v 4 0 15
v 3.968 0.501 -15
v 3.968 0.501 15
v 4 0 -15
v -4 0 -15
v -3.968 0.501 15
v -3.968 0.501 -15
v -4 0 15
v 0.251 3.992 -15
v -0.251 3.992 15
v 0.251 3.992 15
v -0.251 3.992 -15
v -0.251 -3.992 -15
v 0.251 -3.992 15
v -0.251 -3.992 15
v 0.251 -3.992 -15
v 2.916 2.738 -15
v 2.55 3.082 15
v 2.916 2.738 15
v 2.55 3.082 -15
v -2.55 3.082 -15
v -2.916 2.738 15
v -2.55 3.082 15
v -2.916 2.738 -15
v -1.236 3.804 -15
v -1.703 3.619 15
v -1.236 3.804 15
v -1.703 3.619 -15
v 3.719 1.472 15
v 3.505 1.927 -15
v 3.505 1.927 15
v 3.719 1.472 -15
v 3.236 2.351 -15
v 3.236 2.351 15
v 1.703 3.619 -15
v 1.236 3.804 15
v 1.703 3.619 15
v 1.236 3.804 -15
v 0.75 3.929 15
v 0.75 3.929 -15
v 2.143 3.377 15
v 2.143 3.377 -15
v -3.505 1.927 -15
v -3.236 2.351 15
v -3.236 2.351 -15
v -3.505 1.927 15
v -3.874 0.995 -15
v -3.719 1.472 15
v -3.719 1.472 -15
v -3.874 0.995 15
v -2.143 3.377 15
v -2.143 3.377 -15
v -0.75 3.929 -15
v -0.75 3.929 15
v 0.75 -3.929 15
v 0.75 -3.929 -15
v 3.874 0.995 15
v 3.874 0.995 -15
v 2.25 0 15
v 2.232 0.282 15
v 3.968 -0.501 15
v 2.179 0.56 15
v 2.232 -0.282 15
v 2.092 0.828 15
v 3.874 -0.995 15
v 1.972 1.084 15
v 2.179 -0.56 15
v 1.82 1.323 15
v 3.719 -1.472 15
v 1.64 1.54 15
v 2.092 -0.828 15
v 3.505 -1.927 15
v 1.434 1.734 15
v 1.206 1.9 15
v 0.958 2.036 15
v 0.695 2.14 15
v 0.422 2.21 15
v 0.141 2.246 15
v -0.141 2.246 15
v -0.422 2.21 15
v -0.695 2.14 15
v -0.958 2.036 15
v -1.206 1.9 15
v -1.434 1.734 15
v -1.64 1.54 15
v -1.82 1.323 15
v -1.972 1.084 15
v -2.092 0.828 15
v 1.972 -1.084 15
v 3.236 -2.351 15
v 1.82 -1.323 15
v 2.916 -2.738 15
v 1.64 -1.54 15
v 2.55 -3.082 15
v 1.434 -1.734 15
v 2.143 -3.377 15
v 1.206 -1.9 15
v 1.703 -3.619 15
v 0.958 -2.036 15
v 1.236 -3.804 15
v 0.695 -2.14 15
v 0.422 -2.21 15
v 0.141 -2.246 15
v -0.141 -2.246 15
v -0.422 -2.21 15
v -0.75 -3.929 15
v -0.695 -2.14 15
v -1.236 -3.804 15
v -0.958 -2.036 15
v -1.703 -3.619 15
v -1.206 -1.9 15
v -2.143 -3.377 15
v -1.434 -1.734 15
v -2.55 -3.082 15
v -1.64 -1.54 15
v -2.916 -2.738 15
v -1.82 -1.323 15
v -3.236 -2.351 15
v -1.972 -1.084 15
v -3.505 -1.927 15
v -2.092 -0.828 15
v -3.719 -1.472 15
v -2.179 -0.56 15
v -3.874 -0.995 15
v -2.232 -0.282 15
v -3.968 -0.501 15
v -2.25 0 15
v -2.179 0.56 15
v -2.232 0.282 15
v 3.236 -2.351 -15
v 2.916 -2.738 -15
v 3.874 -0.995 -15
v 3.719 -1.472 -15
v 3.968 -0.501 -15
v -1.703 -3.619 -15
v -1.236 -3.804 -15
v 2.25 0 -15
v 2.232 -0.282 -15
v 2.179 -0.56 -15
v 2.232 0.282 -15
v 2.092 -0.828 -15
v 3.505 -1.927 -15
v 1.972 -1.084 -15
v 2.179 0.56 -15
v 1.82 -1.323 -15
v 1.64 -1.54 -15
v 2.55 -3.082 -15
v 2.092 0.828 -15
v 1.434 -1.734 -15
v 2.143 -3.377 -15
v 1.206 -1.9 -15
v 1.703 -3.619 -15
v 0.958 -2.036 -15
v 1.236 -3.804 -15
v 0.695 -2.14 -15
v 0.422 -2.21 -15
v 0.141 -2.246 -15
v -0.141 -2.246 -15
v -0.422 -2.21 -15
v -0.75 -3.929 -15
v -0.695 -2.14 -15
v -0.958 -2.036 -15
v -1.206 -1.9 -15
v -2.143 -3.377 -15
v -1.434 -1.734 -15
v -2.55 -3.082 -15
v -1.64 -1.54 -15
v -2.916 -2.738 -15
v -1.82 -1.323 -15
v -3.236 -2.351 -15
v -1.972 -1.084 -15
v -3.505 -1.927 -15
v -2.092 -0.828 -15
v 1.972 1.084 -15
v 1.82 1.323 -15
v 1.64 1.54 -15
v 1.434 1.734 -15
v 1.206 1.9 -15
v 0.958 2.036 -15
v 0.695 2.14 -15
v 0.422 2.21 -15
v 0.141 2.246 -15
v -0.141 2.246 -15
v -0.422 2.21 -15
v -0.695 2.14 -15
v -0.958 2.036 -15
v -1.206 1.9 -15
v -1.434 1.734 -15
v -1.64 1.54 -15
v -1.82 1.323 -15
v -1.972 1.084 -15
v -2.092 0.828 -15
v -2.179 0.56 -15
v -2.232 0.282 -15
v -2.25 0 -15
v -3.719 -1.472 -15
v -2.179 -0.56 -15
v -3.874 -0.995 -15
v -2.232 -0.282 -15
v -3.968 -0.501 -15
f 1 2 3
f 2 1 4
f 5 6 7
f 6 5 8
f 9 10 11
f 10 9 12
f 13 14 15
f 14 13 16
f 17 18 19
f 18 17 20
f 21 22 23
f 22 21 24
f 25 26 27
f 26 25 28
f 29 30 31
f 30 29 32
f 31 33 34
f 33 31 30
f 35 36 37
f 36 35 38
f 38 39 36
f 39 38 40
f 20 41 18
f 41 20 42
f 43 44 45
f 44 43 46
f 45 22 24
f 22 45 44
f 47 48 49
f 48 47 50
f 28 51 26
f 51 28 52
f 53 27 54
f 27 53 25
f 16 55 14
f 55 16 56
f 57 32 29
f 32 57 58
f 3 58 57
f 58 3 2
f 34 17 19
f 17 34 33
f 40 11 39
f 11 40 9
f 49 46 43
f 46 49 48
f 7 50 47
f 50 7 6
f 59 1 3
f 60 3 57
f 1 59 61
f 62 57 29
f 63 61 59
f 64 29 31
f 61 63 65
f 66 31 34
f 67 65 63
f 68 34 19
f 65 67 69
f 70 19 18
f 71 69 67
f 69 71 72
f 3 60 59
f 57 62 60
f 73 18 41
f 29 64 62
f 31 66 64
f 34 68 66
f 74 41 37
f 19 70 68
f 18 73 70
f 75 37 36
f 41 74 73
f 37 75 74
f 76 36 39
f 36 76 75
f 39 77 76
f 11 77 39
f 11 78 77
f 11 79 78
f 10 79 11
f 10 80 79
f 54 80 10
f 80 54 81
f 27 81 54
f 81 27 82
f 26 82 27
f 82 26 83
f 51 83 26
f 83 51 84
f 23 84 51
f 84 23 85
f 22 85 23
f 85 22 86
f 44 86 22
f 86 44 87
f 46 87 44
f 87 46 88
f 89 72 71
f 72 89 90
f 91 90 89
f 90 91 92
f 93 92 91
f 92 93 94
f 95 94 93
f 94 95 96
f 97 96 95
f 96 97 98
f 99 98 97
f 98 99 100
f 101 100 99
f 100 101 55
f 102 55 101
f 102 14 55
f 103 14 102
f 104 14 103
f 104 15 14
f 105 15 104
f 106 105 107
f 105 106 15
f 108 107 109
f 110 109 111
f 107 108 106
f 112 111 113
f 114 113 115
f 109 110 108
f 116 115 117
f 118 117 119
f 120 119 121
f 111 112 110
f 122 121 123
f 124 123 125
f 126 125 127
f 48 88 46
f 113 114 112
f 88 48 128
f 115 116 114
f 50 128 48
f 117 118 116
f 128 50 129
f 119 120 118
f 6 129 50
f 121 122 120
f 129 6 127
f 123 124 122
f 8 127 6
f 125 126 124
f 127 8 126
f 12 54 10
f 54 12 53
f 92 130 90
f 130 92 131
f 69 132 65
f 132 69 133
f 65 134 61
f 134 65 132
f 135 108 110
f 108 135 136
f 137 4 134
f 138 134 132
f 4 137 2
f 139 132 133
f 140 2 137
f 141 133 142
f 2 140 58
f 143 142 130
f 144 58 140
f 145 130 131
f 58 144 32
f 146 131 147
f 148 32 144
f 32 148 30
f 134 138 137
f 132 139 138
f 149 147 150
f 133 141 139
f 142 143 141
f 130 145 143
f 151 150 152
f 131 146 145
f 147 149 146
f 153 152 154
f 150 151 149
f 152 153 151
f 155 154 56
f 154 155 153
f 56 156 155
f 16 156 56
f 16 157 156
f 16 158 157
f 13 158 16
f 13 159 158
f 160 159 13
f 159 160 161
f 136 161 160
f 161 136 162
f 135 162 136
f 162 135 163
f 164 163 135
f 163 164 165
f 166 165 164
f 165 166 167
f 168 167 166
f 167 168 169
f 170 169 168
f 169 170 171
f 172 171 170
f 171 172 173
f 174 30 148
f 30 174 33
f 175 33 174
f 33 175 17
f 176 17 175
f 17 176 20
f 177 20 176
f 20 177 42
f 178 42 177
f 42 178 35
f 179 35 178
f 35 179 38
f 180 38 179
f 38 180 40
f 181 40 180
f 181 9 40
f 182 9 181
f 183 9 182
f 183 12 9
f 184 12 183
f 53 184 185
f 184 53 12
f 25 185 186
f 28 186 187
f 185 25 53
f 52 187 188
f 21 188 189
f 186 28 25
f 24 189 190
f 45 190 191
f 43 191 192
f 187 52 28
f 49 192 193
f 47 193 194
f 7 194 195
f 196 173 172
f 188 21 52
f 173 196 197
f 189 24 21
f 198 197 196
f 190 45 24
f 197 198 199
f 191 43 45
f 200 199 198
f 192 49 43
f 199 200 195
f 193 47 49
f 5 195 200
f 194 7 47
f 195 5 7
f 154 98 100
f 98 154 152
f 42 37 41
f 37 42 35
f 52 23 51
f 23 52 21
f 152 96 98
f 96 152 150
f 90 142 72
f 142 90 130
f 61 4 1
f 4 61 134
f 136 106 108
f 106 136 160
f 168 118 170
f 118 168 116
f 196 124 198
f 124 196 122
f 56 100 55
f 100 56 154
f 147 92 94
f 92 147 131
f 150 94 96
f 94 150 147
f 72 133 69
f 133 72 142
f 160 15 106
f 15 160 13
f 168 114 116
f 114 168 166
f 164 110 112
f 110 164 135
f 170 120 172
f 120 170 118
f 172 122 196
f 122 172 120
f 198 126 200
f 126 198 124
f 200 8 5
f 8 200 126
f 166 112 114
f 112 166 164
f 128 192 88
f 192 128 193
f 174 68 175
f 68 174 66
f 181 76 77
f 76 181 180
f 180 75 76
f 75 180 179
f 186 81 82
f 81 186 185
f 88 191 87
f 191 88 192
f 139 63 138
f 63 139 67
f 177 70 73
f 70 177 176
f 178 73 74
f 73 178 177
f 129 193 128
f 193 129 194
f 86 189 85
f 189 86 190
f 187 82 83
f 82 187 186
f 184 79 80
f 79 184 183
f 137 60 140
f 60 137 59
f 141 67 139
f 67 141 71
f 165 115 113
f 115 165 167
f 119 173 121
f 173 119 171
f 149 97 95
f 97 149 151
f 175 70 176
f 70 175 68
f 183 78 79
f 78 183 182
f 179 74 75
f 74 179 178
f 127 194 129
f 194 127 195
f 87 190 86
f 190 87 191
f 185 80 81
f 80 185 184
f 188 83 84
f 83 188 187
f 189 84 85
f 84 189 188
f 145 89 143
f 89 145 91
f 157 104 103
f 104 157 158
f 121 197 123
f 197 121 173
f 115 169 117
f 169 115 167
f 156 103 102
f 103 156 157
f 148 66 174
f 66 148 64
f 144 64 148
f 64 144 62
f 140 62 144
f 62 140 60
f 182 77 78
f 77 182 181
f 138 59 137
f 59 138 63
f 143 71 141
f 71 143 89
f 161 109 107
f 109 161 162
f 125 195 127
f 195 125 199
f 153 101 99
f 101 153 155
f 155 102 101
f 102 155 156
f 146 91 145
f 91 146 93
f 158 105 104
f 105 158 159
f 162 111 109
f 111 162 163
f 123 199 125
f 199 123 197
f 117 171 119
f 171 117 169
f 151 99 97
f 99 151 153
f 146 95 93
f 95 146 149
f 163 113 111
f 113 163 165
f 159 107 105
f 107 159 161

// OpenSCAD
$fn = 50;


difference() {
	union() {
		translate(v = [0, 0, -15.0000000000]) {
			cylinder(h = 30, r = 4.0000000000);
		}
	}
	union() {
		translate(v = [0, 0, -100.0000000000]) {
			cylinder(h = 200, r = 2.2500000000);
		}
	}
}
